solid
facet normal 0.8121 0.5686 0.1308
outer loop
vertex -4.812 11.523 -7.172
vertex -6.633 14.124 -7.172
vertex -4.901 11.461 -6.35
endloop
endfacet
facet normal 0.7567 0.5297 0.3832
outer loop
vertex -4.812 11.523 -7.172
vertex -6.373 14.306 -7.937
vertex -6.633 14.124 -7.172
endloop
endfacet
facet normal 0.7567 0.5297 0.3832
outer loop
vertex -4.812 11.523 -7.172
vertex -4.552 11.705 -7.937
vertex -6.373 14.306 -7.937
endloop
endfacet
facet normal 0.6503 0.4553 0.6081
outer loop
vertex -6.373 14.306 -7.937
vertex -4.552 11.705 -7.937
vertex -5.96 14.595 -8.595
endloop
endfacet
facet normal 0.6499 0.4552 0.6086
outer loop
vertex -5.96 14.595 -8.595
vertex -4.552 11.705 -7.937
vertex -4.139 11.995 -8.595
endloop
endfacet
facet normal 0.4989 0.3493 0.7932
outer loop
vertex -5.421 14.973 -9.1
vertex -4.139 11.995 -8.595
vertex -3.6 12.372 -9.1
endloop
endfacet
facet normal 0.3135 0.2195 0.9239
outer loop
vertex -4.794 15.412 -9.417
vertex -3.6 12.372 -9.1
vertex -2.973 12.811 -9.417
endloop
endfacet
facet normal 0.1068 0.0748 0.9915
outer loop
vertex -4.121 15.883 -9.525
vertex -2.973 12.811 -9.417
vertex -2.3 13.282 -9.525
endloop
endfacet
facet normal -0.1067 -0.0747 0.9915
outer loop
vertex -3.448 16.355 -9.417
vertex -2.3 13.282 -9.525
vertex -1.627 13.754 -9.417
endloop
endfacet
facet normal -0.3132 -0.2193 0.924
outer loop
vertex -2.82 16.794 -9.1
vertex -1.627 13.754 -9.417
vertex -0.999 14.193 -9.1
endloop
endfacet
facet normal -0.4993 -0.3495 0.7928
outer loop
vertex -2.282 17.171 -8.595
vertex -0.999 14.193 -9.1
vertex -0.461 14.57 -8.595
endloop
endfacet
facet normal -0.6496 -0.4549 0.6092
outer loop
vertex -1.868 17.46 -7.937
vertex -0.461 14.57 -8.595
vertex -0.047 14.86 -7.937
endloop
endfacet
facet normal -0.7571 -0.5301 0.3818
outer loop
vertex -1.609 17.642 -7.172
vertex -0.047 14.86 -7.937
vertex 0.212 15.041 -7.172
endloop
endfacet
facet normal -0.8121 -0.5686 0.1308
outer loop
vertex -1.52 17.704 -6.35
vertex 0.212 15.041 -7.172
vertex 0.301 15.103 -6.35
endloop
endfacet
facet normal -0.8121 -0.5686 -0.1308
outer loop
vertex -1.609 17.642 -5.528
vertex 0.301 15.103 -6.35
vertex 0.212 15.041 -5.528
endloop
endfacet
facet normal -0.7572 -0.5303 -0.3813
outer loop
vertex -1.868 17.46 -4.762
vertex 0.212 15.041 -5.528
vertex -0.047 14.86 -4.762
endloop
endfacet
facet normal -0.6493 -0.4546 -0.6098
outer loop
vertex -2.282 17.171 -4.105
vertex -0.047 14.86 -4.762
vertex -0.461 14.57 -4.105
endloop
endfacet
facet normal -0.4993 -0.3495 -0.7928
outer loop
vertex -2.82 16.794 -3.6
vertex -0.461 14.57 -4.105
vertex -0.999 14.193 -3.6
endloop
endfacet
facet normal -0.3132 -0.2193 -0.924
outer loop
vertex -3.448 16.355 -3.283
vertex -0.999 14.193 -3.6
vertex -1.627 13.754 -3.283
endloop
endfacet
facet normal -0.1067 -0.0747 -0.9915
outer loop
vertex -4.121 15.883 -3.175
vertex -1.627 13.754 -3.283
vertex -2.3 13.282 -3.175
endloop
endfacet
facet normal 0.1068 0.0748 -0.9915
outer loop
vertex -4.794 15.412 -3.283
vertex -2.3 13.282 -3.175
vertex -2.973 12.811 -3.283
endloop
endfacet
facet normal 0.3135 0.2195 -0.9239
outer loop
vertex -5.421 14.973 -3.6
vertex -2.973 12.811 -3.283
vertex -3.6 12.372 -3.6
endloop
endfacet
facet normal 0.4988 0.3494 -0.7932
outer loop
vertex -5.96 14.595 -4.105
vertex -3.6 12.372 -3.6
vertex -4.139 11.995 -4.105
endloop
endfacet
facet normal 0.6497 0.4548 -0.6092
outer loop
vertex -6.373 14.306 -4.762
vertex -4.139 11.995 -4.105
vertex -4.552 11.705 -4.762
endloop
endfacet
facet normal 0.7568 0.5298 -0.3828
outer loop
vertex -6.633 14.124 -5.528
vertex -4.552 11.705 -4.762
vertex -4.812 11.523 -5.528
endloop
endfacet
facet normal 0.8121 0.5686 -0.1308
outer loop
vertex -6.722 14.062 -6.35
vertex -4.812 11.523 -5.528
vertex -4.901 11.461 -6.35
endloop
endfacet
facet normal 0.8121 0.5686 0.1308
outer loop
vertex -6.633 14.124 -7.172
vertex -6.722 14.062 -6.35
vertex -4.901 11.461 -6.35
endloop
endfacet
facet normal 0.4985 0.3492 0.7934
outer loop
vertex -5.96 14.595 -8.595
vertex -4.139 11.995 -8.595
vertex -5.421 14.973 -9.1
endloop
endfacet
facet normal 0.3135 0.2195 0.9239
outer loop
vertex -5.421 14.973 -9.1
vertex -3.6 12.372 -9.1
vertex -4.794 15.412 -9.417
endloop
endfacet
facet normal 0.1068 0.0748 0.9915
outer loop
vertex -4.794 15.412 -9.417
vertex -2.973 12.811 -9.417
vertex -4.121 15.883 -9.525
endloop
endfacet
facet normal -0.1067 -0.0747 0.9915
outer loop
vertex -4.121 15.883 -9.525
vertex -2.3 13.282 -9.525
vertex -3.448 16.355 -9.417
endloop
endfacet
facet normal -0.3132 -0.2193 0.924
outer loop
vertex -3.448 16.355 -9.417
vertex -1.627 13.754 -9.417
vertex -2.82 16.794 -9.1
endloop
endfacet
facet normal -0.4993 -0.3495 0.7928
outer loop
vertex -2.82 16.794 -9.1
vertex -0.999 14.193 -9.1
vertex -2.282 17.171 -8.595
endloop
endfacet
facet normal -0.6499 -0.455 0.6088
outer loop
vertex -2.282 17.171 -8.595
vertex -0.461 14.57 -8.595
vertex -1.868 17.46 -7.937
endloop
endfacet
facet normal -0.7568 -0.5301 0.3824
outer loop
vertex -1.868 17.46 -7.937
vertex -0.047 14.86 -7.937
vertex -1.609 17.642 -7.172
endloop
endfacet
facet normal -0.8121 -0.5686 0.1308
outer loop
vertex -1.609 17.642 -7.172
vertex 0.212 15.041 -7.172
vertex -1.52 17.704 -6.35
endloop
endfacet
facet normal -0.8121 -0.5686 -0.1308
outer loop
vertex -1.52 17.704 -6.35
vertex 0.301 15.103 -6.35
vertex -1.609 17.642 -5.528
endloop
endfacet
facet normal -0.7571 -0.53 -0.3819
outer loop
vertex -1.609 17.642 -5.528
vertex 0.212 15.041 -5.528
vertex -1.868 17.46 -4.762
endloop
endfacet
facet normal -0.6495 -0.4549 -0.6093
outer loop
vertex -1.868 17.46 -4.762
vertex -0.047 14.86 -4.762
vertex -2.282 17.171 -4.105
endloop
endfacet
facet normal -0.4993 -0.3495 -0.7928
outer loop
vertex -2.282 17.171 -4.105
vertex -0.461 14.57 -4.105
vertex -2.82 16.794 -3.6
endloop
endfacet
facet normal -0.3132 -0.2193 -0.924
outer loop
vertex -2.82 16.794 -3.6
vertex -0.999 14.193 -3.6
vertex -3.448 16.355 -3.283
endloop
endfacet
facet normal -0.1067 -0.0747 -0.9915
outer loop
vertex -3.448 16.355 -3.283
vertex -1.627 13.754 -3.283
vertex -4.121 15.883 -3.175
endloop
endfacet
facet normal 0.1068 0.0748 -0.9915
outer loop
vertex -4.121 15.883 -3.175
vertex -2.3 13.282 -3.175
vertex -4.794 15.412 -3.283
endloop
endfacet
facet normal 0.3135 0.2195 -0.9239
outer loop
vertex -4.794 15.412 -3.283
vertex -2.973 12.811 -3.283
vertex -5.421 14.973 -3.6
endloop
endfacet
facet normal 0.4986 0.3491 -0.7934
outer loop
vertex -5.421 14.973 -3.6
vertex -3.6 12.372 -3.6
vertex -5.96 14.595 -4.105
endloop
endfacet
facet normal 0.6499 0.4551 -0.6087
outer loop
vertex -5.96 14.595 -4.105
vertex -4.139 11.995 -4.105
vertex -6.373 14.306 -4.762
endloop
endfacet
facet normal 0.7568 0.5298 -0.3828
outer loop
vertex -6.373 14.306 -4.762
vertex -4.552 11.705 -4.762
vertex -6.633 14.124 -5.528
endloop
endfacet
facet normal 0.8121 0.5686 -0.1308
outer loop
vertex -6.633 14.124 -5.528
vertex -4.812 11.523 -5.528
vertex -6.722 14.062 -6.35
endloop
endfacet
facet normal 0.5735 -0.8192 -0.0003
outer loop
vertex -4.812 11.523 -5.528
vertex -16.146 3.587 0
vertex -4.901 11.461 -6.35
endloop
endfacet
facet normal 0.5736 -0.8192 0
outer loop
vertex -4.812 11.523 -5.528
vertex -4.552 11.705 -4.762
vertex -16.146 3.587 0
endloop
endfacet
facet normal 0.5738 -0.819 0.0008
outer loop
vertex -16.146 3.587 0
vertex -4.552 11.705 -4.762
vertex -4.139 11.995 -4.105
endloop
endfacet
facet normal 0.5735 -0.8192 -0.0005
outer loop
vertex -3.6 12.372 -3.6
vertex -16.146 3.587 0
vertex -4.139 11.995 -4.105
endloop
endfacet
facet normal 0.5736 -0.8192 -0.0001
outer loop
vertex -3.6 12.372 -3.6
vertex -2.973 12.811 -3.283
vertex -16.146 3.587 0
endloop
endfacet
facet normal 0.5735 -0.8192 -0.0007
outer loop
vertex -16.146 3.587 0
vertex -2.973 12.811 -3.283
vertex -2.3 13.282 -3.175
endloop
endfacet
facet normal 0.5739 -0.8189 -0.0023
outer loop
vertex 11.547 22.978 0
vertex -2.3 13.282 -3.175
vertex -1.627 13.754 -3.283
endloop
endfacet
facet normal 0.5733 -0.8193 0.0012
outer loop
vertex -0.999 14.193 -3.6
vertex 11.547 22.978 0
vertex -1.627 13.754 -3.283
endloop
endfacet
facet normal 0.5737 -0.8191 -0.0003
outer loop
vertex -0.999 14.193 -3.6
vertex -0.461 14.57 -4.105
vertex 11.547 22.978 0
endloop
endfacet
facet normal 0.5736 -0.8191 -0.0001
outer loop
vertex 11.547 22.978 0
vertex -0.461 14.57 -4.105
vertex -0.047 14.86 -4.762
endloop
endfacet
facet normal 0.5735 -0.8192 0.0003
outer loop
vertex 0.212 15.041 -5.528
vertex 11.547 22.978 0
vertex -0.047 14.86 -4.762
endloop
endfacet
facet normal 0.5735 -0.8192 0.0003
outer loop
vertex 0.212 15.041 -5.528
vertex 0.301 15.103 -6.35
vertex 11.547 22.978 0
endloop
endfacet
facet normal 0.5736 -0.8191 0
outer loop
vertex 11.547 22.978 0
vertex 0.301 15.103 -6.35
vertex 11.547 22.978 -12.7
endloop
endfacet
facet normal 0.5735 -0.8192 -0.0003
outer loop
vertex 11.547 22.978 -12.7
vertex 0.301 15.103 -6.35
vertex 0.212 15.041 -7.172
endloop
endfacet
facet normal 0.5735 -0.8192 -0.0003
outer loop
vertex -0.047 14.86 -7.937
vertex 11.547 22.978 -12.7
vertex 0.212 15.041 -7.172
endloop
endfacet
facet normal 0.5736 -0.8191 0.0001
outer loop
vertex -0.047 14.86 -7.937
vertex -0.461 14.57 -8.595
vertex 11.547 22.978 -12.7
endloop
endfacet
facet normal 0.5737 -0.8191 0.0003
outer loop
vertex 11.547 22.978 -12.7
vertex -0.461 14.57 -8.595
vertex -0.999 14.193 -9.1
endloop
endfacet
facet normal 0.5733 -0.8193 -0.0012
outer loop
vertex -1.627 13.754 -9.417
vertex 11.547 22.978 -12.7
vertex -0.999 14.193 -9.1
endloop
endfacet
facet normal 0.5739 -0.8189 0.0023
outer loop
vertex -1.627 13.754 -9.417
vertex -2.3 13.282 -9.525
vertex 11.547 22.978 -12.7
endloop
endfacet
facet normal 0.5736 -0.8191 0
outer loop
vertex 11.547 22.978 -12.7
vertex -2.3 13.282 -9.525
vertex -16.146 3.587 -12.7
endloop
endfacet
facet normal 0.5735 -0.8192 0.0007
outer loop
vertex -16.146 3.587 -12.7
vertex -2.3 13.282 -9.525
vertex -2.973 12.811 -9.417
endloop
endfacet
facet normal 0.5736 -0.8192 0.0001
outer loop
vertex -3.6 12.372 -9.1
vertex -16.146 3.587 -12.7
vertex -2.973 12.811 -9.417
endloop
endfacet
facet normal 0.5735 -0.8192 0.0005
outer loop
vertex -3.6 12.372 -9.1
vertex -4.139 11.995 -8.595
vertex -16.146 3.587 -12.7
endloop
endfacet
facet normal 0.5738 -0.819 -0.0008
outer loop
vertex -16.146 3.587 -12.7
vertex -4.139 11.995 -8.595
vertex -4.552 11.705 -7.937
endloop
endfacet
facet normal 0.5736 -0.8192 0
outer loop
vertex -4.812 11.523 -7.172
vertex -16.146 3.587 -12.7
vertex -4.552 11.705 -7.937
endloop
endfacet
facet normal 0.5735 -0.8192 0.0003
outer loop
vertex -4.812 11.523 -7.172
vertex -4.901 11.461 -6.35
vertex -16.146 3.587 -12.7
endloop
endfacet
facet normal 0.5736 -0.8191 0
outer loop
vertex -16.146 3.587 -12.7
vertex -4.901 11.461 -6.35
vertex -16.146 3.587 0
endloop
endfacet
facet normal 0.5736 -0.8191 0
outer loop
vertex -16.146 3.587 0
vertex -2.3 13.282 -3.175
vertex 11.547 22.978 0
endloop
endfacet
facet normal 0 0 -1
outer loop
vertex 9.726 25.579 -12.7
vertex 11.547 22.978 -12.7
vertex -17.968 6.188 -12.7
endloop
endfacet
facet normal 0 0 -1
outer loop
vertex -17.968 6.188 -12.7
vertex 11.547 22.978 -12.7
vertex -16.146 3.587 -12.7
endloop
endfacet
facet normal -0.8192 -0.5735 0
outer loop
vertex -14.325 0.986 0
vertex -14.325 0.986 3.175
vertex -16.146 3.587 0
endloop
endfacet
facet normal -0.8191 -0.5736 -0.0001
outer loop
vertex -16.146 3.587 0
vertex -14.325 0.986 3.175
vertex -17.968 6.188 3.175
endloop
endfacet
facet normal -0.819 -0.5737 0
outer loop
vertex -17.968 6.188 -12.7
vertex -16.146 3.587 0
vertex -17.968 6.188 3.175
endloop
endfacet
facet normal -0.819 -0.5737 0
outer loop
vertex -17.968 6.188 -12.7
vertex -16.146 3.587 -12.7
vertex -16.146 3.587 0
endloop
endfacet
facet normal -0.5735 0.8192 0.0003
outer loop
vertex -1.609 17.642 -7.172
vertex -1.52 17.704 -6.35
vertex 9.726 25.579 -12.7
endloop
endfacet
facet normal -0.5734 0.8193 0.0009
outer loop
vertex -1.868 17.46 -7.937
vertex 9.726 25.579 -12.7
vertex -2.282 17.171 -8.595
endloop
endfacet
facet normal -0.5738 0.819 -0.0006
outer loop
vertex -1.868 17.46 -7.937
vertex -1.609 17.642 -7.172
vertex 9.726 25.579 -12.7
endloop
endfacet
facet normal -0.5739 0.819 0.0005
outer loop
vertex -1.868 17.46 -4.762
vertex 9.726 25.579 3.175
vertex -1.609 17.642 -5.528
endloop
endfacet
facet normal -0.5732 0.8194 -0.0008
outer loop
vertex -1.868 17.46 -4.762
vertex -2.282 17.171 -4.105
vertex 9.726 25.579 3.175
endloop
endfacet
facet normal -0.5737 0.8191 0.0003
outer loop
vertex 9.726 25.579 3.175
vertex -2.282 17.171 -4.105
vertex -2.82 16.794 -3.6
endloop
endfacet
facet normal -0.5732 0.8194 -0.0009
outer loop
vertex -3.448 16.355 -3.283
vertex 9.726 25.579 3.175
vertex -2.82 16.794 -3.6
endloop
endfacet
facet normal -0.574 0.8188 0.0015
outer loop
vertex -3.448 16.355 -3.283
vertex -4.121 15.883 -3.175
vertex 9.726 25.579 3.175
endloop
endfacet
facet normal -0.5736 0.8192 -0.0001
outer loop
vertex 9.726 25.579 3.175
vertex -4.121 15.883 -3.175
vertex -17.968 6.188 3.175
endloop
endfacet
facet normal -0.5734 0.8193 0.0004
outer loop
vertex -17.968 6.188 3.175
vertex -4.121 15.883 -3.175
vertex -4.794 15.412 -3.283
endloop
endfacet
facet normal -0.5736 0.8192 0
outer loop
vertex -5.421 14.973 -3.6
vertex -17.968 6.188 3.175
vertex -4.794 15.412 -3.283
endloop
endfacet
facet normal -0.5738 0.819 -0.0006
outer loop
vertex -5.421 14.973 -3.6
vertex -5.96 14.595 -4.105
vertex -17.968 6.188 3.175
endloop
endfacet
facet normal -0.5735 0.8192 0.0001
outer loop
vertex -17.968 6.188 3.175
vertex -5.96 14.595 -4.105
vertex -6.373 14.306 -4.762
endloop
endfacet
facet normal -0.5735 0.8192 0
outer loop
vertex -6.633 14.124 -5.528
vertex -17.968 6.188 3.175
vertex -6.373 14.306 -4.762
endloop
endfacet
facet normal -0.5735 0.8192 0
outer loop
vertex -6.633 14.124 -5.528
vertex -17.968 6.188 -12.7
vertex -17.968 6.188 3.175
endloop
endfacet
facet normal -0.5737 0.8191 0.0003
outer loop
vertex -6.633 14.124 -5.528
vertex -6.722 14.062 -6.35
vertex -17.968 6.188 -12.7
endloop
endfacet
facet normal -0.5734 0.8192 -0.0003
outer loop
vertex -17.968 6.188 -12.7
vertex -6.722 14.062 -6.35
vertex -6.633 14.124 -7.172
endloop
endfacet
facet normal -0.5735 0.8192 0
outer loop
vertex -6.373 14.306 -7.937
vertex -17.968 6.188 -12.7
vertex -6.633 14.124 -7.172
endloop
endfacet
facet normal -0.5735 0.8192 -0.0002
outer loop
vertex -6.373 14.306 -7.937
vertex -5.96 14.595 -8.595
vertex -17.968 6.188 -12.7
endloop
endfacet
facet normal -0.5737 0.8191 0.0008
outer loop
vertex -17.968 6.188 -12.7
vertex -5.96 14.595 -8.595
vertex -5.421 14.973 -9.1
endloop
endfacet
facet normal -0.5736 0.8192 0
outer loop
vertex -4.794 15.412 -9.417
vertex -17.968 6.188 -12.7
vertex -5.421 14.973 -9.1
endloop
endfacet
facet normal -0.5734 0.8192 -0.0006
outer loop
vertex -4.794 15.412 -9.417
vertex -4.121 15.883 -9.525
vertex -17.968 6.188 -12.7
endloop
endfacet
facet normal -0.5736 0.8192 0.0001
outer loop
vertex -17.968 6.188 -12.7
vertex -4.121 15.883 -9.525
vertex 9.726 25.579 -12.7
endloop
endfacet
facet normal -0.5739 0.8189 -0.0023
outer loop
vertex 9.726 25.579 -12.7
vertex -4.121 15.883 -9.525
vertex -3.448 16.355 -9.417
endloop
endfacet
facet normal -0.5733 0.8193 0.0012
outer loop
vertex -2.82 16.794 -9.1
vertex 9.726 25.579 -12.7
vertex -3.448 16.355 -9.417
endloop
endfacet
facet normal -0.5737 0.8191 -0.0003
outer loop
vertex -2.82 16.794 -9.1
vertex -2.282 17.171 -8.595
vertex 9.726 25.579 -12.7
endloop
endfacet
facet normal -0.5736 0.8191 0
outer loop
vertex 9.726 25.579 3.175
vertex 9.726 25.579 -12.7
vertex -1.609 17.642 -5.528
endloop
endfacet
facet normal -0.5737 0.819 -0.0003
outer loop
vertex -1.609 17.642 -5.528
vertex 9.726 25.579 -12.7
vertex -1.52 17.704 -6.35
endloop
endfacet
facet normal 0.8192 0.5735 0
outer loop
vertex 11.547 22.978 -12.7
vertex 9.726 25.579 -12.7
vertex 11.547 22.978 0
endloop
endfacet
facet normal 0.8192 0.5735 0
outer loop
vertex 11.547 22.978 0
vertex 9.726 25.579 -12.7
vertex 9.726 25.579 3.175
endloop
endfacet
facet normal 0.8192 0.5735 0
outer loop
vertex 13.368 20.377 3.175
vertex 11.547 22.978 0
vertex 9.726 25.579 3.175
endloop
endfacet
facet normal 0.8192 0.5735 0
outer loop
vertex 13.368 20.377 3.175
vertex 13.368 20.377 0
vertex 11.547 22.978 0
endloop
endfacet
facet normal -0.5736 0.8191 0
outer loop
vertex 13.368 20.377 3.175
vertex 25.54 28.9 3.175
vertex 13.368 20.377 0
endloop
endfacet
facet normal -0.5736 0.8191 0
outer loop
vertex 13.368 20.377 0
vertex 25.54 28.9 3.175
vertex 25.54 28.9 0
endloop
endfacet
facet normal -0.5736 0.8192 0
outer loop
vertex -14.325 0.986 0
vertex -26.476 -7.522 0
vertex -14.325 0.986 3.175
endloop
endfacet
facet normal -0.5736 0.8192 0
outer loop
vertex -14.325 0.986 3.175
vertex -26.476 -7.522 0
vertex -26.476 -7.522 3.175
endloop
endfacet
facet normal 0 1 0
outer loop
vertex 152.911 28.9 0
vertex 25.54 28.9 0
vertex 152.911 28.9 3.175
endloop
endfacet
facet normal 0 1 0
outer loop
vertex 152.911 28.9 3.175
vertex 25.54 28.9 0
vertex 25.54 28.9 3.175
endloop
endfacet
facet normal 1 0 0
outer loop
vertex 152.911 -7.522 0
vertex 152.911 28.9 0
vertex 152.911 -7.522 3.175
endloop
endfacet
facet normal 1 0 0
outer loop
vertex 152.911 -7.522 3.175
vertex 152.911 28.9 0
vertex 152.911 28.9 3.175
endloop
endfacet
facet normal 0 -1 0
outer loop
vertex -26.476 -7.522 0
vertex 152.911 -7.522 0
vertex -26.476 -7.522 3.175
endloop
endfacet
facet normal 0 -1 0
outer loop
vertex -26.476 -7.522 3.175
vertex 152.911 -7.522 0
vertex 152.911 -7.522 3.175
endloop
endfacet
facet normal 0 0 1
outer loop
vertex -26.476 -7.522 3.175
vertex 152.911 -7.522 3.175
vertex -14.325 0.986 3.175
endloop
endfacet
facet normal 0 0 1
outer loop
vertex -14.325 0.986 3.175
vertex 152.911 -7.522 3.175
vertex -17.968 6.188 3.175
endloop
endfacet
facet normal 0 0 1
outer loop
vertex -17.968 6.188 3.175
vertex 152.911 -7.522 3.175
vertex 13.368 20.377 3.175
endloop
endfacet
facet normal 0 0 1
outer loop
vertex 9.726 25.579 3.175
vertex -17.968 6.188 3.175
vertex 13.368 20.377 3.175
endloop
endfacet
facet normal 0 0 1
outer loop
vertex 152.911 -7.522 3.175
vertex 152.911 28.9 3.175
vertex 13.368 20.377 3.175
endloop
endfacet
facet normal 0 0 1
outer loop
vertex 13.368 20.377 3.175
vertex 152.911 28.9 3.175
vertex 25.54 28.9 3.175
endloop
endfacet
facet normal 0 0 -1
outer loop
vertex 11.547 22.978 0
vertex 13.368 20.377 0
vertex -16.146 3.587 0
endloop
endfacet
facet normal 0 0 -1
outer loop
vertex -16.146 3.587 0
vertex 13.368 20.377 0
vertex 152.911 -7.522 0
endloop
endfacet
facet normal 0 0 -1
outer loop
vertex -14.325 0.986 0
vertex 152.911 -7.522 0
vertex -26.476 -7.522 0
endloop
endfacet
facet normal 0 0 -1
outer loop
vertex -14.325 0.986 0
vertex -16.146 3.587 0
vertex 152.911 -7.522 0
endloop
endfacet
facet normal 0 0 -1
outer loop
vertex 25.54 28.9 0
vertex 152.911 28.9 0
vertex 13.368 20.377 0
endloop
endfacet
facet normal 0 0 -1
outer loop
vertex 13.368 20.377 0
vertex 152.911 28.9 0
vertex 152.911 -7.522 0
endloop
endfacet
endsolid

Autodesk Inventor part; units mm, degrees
ref_plane "YZ Plane" through (0, 0, 0) normal (1, 0, 0) x (0, 1, 0)
ref_plane "XZ Plane" through (0, 0, 0) normal (0, 1, 0) x (-1, 0, 0)
ref_plane "XY Plane" through (0, 0, 0) normal (0, 0, 1) x (1, 0, 0)
sketch "Sketch1" plane through (0, 0, 0) normal (0, 0, 1) x (1, 0, 0)
  line L0 (-26.4763, -7.5222) -> (152.9112, -7.5222)
  line L1 (-26.4763, -7.5222) -> (25.5399, 28.8999)
  line L2 (-26.4763, -7.5222) -> (37.0237, -7.5222) construction
  line L3 (25.5399, 28.8999) -> (152.9112, 28.8999)
  line L4 (152.9112, 28.8999) -> (152.9112, -7.5222)
  point P0 (0, 0)
  dimension "d0" = 179.3875
  dimension "d2" = 63.5
  dimension "d3" = 35
extrude "Extrusion1" add sketch "Sketch1" along normal blind 3.175
sketch "Sketch2" plane through (0, 0, 0) normal (0, 0, -1) x (-1, 0, 0)
  line L0 (-25.5399, 28.8999) -> (26.4763, -7.5222) projected
  line L1 (0.4682, 10.6889) -> (-13.3681, 20.3771)
  line L2 (-13.3681, 20.3771) -> (-9.7259, 25.5788)
  line L3 (-9.7259, 25.5788) -> (17.9675, 6.1876)
  line L4 (17.9675, 6.1876) -> (14.3253, 0.986)
  line L5 (14.3253, 0.986) -> (0.4682, 10.6889)
  point P0 (0, 0)
  dimension "d6" = 16.891
  dimension "d7" = 6.35
  dimension "d8" = 33.8074
extrude "Extrusion2" add sketch "Sketch2" against normal blind 3.175
sketch "Sketch3" plane through (0, 0, 0) normal (0, 0, -1) x (-1, 0, 0)
  line L0 (14.3253, 0.986) -> (17.9675, 6.1876) projected
  line L1 (17.9675, 6.1876) -> (-9.7259, 25.5788) projected
  line L2 (-9.7259, 25.5788) -> (-13.3681, 20.3771) projected
  line L3 (-25.5399, 28.8999) -> (-13.3681, 20.3771) projected
  line L4 (-9.7259, 25.5788) -> (17.9675, 6.1876)
  line L5 (17.9675, 6.1876) -> (16.1464, 3.5868)
  line L6 (16.1464, 3.5868) -> (-11.547, 22.9779)
  line L7 (-11.547, 22.9779) -> (-9.7259, 25.5788)
  point P0 (0, 0)
  dimension "d11" = 3.175
extrude "Extrusion3" add sketch "Sketch3" along normal blind 12.7
sketch "Sketch4" plane through (-17.9675, 6.1876, 3.175) normal (-0.5736, 0.8192, 0) x (0.8192, 0.5736, 0)
  line L0 (0, 15.875) -> (33.8074, 15.875) projected
  line L1 (16.9037, 15.875) -> (16.9037, 9.525)
  point P0 (11.1691, 3.175)
  dimension "d14" = 6.35
hole "Hole1" at (-4.1208, 15.8832, -6.35) direction (0.5736, -0.8192, 0) diameter 6.35 end through all
properties part number "Right Forearm"
